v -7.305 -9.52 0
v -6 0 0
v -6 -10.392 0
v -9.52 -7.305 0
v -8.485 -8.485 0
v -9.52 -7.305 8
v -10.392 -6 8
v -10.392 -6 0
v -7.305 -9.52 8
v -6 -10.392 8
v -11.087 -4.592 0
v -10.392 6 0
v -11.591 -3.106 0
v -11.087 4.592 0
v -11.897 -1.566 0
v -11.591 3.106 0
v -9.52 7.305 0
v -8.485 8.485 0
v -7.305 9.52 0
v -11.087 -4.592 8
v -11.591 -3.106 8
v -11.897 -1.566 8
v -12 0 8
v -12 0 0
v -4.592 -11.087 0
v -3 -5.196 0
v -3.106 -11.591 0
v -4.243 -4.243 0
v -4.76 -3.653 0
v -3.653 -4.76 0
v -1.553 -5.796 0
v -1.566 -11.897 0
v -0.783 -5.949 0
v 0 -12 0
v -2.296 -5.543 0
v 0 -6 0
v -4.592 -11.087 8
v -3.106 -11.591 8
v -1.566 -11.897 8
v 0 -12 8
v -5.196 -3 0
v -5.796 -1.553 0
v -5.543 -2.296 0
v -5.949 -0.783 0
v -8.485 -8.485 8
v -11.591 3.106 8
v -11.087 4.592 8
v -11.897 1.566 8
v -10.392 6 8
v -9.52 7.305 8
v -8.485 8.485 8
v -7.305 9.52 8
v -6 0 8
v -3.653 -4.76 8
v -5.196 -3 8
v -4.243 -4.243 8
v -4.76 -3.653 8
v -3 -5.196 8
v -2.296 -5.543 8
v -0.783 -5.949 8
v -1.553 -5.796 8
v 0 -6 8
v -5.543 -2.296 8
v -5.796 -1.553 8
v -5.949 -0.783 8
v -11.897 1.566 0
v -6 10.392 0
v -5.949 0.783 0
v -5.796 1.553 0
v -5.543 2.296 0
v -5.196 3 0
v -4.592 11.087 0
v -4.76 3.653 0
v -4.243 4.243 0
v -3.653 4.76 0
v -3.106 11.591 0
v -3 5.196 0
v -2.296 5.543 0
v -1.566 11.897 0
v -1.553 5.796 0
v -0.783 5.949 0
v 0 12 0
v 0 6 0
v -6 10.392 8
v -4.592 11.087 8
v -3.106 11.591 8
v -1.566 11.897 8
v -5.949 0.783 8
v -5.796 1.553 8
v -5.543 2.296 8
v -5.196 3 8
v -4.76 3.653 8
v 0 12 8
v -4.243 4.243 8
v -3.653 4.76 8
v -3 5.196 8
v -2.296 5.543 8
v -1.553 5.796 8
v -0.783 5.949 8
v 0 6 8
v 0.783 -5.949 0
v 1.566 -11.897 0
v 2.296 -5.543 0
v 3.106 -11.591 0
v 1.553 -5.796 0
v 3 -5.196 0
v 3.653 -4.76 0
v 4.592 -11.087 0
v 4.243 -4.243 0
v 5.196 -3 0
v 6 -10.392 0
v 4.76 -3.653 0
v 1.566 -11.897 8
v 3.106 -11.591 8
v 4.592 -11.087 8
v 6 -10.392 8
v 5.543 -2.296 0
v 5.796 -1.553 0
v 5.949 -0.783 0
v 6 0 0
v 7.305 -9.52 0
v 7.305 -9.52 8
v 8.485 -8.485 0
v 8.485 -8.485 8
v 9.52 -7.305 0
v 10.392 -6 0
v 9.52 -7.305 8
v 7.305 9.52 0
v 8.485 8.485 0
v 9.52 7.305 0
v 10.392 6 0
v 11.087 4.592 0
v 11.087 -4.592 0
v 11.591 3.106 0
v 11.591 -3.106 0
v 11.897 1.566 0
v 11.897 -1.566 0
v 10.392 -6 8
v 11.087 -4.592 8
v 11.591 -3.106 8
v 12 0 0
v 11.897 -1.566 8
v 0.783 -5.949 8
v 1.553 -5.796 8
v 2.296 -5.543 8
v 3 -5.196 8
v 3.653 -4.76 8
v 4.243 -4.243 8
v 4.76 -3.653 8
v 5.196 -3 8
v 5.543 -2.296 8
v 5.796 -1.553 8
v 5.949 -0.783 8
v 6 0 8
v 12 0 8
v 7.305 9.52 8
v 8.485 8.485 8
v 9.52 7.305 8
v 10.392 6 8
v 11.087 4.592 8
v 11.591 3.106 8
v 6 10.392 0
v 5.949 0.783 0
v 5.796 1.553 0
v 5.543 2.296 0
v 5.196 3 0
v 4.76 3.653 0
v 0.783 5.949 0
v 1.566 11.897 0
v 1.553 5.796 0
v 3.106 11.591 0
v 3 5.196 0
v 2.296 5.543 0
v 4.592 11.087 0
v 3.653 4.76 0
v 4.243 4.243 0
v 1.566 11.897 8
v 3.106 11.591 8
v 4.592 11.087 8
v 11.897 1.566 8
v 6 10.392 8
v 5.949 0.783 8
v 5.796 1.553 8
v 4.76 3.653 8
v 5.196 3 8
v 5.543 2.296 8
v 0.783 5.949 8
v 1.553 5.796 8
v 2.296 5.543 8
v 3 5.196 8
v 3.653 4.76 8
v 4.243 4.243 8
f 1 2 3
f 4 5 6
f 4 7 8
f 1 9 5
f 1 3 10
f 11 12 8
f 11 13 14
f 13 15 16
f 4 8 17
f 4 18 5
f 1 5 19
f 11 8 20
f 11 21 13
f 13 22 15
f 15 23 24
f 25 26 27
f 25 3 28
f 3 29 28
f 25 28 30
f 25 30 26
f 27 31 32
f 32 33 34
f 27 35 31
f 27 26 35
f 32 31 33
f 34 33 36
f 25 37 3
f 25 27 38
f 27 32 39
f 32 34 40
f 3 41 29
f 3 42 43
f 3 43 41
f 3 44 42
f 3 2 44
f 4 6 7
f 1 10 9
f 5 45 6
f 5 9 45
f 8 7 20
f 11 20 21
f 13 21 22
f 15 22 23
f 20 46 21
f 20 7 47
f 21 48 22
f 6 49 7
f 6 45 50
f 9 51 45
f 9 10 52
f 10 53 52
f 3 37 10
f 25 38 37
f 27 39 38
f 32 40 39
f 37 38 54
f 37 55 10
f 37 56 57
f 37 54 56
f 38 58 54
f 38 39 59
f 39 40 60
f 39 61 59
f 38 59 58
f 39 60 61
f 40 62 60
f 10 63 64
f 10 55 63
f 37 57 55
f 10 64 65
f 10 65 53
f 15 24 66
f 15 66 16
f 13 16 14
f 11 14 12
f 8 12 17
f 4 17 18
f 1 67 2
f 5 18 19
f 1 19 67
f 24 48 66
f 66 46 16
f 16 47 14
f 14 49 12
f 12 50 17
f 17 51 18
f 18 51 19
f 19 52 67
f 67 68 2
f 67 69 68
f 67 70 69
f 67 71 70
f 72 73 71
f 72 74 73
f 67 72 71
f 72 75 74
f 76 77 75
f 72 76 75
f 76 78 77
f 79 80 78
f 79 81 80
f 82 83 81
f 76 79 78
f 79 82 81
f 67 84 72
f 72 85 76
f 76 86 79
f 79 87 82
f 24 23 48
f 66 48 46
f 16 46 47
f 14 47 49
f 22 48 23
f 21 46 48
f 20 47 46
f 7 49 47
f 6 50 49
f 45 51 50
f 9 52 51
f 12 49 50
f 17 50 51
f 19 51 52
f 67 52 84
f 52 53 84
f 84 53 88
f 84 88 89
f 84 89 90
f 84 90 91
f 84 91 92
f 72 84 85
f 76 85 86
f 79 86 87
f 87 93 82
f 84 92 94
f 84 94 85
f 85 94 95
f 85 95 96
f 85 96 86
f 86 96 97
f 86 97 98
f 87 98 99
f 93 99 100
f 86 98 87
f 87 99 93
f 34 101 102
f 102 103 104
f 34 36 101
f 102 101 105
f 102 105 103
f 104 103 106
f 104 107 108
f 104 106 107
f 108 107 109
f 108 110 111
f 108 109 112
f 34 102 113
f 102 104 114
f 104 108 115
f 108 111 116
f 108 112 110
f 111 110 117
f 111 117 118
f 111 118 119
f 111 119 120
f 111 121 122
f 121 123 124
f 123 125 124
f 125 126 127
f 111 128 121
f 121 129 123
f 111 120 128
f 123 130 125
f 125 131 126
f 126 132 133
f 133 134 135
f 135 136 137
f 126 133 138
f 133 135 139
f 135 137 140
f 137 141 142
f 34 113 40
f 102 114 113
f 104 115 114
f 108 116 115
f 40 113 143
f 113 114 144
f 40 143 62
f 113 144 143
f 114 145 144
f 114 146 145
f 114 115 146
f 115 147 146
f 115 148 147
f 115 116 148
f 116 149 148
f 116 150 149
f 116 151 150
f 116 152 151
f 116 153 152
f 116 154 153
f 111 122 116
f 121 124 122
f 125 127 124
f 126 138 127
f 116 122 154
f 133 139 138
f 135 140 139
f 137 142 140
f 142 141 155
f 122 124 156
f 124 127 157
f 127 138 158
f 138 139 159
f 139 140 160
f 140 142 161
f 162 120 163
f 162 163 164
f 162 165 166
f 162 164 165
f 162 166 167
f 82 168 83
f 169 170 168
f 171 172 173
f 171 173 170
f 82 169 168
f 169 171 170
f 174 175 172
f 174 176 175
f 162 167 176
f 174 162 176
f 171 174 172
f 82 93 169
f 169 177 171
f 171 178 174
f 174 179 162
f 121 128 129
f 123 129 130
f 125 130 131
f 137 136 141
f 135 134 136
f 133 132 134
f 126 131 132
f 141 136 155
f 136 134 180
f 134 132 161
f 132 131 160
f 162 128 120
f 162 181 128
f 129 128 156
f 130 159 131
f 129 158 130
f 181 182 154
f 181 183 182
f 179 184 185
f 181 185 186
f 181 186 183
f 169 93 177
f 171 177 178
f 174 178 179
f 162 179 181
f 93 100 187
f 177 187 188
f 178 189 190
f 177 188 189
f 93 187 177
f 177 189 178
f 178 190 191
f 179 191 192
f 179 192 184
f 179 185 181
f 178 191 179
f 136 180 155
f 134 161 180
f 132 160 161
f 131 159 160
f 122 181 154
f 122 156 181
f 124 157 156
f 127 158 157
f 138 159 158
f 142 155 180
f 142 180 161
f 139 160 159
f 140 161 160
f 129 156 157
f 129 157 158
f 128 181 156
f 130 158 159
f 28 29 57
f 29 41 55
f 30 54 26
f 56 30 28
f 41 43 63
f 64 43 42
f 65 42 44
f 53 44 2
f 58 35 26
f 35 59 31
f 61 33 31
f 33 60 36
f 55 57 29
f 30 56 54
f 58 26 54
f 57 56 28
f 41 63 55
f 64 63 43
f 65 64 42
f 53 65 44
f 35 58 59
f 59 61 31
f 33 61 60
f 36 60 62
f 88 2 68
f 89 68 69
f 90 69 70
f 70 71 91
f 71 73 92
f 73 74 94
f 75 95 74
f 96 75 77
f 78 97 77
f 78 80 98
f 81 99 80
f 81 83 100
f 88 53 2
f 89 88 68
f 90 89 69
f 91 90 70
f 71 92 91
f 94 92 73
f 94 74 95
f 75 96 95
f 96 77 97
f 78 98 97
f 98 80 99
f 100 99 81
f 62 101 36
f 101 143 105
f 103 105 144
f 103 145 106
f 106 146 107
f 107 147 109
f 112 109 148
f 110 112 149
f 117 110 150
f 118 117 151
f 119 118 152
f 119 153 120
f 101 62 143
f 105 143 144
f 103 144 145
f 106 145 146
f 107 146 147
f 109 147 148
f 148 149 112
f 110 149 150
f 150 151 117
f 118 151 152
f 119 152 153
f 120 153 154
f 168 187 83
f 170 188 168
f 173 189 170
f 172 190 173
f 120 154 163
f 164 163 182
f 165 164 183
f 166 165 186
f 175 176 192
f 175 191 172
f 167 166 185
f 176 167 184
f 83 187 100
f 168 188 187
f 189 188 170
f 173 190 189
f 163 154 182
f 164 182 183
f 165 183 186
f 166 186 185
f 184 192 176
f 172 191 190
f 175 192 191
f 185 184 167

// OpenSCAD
$fn = 48;

difference() {
    cylinder(h = 8, d = 24);
    translate([0, 0, -1])
        cylinder(h = 10, d = 12);
}
